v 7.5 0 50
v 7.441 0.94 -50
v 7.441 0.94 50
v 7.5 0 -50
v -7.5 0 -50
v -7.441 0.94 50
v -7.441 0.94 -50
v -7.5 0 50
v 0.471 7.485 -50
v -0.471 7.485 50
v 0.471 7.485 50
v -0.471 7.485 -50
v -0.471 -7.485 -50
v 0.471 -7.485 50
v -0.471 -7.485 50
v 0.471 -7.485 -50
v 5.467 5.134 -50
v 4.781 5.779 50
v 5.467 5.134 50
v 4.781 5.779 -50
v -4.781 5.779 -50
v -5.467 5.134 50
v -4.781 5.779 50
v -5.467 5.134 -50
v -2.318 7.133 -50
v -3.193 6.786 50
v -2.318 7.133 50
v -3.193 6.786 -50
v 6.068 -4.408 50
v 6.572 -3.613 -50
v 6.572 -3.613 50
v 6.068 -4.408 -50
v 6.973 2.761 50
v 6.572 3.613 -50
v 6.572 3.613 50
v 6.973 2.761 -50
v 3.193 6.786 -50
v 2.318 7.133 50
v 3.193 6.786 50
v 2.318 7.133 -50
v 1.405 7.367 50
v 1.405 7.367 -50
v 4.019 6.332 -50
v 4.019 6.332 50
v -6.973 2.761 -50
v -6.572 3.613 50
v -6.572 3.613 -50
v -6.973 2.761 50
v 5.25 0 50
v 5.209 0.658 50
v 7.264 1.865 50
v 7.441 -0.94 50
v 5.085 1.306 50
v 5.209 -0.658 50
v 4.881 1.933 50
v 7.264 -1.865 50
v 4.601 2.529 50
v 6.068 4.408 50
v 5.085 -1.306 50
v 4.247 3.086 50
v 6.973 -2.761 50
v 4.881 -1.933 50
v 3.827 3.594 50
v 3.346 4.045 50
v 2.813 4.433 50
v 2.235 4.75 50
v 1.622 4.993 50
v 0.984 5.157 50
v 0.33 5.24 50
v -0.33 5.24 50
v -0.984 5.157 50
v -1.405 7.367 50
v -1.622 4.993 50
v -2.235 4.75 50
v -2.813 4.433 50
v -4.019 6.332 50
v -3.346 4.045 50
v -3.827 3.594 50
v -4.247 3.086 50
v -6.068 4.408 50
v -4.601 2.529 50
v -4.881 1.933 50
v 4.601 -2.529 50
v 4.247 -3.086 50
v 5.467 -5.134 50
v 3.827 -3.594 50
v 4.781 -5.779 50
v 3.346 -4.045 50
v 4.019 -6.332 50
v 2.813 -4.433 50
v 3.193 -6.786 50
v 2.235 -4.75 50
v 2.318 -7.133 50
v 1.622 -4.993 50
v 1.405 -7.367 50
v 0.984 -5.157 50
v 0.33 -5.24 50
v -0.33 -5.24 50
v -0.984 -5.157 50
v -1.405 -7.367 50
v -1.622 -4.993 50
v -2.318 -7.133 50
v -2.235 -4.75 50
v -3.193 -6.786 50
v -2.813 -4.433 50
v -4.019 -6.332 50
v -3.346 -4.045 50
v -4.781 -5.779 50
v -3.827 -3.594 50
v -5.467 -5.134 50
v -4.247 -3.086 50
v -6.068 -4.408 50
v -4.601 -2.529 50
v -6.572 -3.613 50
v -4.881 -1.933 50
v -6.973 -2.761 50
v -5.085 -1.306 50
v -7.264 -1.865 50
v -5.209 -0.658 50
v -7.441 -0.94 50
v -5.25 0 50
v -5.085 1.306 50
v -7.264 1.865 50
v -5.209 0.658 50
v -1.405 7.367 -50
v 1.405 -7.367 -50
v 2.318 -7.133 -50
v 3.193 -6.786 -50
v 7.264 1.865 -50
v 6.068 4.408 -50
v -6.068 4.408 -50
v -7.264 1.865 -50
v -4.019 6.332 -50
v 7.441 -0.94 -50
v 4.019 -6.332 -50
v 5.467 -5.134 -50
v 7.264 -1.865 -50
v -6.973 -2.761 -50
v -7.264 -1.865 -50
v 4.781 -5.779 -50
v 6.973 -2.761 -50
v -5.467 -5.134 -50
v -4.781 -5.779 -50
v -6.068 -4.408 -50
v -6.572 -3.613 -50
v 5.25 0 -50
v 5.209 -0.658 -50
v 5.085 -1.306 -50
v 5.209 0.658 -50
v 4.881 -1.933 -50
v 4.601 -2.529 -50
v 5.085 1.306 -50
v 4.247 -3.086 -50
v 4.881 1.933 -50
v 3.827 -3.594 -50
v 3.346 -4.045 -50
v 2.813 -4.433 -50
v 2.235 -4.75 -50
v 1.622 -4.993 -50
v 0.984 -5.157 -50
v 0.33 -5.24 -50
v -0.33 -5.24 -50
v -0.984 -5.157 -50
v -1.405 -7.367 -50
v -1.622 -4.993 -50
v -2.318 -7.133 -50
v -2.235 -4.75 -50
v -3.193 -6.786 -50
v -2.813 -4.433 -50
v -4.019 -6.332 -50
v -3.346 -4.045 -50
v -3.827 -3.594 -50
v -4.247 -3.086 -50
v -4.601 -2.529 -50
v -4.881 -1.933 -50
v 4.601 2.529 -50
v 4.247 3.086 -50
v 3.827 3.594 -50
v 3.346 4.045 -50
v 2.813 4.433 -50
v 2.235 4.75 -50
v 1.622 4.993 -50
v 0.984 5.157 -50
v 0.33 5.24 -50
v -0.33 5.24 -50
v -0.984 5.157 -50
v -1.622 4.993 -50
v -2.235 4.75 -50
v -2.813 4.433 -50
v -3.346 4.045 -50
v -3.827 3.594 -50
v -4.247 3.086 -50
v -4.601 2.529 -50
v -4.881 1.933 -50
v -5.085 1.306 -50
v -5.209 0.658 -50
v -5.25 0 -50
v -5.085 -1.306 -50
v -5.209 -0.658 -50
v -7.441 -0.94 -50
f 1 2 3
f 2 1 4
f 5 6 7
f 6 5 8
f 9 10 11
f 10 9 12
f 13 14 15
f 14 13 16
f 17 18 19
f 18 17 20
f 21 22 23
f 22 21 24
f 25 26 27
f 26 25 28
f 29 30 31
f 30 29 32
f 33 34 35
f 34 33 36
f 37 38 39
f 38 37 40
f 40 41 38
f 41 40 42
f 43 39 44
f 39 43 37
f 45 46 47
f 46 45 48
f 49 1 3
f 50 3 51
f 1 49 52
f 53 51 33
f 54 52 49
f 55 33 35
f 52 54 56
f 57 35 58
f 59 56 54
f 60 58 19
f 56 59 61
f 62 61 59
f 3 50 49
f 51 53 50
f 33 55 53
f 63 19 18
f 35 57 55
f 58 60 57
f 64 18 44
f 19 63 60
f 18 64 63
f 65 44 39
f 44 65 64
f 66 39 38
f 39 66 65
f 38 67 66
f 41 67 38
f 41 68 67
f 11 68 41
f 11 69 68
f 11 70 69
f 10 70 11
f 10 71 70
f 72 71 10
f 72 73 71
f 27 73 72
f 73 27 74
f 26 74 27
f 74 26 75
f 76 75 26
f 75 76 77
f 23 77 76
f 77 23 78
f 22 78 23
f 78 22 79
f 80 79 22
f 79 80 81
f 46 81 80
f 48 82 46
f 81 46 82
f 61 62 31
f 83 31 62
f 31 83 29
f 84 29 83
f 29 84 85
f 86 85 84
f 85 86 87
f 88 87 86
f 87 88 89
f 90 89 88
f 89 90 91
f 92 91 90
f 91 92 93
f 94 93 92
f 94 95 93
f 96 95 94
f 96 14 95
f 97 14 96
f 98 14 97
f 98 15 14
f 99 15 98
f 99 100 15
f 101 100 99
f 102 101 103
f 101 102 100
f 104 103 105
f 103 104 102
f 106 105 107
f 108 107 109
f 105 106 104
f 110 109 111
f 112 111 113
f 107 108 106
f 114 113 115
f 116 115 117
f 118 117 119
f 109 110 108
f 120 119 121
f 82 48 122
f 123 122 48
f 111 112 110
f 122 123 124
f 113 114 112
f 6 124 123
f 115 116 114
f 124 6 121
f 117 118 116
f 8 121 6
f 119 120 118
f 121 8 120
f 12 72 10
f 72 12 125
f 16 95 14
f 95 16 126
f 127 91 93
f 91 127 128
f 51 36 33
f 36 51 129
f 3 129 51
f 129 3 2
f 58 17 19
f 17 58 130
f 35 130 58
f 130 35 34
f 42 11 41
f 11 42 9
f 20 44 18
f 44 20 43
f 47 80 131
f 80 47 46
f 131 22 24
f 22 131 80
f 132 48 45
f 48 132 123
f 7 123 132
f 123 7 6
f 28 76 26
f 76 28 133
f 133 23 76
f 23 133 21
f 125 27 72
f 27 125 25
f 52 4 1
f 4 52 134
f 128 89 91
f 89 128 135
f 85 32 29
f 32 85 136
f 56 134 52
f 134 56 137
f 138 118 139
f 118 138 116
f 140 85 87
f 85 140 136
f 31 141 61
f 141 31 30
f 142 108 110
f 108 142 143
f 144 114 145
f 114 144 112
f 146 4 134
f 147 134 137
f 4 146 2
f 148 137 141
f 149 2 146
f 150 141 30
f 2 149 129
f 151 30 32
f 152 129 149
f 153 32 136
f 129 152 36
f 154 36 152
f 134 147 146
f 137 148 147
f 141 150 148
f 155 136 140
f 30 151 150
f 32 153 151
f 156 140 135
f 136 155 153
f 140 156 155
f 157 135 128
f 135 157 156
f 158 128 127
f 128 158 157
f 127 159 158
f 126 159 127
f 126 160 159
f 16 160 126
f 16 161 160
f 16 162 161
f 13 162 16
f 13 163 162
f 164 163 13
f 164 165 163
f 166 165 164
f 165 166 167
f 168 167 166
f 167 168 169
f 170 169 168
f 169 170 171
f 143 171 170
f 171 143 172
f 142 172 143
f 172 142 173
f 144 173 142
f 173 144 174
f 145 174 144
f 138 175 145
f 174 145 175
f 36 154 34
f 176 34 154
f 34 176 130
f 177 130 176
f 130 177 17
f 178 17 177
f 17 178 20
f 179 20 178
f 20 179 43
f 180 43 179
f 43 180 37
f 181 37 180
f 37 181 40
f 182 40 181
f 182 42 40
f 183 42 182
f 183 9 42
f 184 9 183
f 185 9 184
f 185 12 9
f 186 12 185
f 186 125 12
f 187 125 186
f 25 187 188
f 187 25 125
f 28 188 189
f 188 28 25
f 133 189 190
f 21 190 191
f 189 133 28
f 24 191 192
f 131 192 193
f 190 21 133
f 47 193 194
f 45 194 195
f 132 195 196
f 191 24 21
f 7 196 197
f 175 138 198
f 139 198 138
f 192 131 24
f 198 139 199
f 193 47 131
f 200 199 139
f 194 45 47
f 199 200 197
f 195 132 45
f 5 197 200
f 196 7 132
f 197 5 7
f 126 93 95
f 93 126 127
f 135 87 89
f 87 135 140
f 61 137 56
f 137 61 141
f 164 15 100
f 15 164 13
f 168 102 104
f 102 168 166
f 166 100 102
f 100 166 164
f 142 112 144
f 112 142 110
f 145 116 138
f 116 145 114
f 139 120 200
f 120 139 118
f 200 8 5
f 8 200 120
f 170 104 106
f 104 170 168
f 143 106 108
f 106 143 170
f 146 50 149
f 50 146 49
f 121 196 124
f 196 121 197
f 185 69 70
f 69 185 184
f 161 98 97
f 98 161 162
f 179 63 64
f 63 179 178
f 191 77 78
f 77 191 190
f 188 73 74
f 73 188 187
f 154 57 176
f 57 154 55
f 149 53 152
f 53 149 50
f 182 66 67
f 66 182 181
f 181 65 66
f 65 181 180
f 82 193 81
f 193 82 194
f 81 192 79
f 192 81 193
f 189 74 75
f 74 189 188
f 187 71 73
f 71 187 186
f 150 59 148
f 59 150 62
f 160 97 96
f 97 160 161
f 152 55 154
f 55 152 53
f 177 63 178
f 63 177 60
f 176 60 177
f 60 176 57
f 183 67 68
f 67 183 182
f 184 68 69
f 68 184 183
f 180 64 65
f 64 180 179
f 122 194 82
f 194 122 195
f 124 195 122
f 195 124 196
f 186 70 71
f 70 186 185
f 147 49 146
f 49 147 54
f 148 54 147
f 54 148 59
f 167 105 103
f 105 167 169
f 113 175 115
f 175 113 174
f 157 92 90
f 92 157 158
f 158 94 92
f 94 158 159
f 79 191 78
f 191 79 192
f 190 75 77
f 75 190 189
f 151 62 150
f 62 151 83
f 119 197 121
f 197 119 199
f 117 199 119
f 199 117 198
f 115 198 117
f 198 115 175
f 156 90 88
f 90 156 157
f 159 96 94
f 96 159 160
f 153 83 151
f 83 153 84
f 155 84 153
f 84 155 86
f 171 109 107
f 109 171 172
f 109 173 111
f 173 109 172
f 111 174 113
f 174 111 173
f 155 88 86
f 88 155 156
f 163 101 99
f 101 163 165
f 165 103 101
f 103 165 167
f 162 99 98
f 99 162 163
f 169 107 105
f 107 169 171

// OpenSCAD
$fn = 50;


difference() {
	union() {
		translate(v = [0, 0, -50.0000000000]) {
			cylinder(h = 100, r = 7.5000000000);
		}
	}
	union() {
		translate(v = [0, 0, -100.0000000000]) {
			cylinder(h = 200, r = 5.2500000000);
		}
	}
}
